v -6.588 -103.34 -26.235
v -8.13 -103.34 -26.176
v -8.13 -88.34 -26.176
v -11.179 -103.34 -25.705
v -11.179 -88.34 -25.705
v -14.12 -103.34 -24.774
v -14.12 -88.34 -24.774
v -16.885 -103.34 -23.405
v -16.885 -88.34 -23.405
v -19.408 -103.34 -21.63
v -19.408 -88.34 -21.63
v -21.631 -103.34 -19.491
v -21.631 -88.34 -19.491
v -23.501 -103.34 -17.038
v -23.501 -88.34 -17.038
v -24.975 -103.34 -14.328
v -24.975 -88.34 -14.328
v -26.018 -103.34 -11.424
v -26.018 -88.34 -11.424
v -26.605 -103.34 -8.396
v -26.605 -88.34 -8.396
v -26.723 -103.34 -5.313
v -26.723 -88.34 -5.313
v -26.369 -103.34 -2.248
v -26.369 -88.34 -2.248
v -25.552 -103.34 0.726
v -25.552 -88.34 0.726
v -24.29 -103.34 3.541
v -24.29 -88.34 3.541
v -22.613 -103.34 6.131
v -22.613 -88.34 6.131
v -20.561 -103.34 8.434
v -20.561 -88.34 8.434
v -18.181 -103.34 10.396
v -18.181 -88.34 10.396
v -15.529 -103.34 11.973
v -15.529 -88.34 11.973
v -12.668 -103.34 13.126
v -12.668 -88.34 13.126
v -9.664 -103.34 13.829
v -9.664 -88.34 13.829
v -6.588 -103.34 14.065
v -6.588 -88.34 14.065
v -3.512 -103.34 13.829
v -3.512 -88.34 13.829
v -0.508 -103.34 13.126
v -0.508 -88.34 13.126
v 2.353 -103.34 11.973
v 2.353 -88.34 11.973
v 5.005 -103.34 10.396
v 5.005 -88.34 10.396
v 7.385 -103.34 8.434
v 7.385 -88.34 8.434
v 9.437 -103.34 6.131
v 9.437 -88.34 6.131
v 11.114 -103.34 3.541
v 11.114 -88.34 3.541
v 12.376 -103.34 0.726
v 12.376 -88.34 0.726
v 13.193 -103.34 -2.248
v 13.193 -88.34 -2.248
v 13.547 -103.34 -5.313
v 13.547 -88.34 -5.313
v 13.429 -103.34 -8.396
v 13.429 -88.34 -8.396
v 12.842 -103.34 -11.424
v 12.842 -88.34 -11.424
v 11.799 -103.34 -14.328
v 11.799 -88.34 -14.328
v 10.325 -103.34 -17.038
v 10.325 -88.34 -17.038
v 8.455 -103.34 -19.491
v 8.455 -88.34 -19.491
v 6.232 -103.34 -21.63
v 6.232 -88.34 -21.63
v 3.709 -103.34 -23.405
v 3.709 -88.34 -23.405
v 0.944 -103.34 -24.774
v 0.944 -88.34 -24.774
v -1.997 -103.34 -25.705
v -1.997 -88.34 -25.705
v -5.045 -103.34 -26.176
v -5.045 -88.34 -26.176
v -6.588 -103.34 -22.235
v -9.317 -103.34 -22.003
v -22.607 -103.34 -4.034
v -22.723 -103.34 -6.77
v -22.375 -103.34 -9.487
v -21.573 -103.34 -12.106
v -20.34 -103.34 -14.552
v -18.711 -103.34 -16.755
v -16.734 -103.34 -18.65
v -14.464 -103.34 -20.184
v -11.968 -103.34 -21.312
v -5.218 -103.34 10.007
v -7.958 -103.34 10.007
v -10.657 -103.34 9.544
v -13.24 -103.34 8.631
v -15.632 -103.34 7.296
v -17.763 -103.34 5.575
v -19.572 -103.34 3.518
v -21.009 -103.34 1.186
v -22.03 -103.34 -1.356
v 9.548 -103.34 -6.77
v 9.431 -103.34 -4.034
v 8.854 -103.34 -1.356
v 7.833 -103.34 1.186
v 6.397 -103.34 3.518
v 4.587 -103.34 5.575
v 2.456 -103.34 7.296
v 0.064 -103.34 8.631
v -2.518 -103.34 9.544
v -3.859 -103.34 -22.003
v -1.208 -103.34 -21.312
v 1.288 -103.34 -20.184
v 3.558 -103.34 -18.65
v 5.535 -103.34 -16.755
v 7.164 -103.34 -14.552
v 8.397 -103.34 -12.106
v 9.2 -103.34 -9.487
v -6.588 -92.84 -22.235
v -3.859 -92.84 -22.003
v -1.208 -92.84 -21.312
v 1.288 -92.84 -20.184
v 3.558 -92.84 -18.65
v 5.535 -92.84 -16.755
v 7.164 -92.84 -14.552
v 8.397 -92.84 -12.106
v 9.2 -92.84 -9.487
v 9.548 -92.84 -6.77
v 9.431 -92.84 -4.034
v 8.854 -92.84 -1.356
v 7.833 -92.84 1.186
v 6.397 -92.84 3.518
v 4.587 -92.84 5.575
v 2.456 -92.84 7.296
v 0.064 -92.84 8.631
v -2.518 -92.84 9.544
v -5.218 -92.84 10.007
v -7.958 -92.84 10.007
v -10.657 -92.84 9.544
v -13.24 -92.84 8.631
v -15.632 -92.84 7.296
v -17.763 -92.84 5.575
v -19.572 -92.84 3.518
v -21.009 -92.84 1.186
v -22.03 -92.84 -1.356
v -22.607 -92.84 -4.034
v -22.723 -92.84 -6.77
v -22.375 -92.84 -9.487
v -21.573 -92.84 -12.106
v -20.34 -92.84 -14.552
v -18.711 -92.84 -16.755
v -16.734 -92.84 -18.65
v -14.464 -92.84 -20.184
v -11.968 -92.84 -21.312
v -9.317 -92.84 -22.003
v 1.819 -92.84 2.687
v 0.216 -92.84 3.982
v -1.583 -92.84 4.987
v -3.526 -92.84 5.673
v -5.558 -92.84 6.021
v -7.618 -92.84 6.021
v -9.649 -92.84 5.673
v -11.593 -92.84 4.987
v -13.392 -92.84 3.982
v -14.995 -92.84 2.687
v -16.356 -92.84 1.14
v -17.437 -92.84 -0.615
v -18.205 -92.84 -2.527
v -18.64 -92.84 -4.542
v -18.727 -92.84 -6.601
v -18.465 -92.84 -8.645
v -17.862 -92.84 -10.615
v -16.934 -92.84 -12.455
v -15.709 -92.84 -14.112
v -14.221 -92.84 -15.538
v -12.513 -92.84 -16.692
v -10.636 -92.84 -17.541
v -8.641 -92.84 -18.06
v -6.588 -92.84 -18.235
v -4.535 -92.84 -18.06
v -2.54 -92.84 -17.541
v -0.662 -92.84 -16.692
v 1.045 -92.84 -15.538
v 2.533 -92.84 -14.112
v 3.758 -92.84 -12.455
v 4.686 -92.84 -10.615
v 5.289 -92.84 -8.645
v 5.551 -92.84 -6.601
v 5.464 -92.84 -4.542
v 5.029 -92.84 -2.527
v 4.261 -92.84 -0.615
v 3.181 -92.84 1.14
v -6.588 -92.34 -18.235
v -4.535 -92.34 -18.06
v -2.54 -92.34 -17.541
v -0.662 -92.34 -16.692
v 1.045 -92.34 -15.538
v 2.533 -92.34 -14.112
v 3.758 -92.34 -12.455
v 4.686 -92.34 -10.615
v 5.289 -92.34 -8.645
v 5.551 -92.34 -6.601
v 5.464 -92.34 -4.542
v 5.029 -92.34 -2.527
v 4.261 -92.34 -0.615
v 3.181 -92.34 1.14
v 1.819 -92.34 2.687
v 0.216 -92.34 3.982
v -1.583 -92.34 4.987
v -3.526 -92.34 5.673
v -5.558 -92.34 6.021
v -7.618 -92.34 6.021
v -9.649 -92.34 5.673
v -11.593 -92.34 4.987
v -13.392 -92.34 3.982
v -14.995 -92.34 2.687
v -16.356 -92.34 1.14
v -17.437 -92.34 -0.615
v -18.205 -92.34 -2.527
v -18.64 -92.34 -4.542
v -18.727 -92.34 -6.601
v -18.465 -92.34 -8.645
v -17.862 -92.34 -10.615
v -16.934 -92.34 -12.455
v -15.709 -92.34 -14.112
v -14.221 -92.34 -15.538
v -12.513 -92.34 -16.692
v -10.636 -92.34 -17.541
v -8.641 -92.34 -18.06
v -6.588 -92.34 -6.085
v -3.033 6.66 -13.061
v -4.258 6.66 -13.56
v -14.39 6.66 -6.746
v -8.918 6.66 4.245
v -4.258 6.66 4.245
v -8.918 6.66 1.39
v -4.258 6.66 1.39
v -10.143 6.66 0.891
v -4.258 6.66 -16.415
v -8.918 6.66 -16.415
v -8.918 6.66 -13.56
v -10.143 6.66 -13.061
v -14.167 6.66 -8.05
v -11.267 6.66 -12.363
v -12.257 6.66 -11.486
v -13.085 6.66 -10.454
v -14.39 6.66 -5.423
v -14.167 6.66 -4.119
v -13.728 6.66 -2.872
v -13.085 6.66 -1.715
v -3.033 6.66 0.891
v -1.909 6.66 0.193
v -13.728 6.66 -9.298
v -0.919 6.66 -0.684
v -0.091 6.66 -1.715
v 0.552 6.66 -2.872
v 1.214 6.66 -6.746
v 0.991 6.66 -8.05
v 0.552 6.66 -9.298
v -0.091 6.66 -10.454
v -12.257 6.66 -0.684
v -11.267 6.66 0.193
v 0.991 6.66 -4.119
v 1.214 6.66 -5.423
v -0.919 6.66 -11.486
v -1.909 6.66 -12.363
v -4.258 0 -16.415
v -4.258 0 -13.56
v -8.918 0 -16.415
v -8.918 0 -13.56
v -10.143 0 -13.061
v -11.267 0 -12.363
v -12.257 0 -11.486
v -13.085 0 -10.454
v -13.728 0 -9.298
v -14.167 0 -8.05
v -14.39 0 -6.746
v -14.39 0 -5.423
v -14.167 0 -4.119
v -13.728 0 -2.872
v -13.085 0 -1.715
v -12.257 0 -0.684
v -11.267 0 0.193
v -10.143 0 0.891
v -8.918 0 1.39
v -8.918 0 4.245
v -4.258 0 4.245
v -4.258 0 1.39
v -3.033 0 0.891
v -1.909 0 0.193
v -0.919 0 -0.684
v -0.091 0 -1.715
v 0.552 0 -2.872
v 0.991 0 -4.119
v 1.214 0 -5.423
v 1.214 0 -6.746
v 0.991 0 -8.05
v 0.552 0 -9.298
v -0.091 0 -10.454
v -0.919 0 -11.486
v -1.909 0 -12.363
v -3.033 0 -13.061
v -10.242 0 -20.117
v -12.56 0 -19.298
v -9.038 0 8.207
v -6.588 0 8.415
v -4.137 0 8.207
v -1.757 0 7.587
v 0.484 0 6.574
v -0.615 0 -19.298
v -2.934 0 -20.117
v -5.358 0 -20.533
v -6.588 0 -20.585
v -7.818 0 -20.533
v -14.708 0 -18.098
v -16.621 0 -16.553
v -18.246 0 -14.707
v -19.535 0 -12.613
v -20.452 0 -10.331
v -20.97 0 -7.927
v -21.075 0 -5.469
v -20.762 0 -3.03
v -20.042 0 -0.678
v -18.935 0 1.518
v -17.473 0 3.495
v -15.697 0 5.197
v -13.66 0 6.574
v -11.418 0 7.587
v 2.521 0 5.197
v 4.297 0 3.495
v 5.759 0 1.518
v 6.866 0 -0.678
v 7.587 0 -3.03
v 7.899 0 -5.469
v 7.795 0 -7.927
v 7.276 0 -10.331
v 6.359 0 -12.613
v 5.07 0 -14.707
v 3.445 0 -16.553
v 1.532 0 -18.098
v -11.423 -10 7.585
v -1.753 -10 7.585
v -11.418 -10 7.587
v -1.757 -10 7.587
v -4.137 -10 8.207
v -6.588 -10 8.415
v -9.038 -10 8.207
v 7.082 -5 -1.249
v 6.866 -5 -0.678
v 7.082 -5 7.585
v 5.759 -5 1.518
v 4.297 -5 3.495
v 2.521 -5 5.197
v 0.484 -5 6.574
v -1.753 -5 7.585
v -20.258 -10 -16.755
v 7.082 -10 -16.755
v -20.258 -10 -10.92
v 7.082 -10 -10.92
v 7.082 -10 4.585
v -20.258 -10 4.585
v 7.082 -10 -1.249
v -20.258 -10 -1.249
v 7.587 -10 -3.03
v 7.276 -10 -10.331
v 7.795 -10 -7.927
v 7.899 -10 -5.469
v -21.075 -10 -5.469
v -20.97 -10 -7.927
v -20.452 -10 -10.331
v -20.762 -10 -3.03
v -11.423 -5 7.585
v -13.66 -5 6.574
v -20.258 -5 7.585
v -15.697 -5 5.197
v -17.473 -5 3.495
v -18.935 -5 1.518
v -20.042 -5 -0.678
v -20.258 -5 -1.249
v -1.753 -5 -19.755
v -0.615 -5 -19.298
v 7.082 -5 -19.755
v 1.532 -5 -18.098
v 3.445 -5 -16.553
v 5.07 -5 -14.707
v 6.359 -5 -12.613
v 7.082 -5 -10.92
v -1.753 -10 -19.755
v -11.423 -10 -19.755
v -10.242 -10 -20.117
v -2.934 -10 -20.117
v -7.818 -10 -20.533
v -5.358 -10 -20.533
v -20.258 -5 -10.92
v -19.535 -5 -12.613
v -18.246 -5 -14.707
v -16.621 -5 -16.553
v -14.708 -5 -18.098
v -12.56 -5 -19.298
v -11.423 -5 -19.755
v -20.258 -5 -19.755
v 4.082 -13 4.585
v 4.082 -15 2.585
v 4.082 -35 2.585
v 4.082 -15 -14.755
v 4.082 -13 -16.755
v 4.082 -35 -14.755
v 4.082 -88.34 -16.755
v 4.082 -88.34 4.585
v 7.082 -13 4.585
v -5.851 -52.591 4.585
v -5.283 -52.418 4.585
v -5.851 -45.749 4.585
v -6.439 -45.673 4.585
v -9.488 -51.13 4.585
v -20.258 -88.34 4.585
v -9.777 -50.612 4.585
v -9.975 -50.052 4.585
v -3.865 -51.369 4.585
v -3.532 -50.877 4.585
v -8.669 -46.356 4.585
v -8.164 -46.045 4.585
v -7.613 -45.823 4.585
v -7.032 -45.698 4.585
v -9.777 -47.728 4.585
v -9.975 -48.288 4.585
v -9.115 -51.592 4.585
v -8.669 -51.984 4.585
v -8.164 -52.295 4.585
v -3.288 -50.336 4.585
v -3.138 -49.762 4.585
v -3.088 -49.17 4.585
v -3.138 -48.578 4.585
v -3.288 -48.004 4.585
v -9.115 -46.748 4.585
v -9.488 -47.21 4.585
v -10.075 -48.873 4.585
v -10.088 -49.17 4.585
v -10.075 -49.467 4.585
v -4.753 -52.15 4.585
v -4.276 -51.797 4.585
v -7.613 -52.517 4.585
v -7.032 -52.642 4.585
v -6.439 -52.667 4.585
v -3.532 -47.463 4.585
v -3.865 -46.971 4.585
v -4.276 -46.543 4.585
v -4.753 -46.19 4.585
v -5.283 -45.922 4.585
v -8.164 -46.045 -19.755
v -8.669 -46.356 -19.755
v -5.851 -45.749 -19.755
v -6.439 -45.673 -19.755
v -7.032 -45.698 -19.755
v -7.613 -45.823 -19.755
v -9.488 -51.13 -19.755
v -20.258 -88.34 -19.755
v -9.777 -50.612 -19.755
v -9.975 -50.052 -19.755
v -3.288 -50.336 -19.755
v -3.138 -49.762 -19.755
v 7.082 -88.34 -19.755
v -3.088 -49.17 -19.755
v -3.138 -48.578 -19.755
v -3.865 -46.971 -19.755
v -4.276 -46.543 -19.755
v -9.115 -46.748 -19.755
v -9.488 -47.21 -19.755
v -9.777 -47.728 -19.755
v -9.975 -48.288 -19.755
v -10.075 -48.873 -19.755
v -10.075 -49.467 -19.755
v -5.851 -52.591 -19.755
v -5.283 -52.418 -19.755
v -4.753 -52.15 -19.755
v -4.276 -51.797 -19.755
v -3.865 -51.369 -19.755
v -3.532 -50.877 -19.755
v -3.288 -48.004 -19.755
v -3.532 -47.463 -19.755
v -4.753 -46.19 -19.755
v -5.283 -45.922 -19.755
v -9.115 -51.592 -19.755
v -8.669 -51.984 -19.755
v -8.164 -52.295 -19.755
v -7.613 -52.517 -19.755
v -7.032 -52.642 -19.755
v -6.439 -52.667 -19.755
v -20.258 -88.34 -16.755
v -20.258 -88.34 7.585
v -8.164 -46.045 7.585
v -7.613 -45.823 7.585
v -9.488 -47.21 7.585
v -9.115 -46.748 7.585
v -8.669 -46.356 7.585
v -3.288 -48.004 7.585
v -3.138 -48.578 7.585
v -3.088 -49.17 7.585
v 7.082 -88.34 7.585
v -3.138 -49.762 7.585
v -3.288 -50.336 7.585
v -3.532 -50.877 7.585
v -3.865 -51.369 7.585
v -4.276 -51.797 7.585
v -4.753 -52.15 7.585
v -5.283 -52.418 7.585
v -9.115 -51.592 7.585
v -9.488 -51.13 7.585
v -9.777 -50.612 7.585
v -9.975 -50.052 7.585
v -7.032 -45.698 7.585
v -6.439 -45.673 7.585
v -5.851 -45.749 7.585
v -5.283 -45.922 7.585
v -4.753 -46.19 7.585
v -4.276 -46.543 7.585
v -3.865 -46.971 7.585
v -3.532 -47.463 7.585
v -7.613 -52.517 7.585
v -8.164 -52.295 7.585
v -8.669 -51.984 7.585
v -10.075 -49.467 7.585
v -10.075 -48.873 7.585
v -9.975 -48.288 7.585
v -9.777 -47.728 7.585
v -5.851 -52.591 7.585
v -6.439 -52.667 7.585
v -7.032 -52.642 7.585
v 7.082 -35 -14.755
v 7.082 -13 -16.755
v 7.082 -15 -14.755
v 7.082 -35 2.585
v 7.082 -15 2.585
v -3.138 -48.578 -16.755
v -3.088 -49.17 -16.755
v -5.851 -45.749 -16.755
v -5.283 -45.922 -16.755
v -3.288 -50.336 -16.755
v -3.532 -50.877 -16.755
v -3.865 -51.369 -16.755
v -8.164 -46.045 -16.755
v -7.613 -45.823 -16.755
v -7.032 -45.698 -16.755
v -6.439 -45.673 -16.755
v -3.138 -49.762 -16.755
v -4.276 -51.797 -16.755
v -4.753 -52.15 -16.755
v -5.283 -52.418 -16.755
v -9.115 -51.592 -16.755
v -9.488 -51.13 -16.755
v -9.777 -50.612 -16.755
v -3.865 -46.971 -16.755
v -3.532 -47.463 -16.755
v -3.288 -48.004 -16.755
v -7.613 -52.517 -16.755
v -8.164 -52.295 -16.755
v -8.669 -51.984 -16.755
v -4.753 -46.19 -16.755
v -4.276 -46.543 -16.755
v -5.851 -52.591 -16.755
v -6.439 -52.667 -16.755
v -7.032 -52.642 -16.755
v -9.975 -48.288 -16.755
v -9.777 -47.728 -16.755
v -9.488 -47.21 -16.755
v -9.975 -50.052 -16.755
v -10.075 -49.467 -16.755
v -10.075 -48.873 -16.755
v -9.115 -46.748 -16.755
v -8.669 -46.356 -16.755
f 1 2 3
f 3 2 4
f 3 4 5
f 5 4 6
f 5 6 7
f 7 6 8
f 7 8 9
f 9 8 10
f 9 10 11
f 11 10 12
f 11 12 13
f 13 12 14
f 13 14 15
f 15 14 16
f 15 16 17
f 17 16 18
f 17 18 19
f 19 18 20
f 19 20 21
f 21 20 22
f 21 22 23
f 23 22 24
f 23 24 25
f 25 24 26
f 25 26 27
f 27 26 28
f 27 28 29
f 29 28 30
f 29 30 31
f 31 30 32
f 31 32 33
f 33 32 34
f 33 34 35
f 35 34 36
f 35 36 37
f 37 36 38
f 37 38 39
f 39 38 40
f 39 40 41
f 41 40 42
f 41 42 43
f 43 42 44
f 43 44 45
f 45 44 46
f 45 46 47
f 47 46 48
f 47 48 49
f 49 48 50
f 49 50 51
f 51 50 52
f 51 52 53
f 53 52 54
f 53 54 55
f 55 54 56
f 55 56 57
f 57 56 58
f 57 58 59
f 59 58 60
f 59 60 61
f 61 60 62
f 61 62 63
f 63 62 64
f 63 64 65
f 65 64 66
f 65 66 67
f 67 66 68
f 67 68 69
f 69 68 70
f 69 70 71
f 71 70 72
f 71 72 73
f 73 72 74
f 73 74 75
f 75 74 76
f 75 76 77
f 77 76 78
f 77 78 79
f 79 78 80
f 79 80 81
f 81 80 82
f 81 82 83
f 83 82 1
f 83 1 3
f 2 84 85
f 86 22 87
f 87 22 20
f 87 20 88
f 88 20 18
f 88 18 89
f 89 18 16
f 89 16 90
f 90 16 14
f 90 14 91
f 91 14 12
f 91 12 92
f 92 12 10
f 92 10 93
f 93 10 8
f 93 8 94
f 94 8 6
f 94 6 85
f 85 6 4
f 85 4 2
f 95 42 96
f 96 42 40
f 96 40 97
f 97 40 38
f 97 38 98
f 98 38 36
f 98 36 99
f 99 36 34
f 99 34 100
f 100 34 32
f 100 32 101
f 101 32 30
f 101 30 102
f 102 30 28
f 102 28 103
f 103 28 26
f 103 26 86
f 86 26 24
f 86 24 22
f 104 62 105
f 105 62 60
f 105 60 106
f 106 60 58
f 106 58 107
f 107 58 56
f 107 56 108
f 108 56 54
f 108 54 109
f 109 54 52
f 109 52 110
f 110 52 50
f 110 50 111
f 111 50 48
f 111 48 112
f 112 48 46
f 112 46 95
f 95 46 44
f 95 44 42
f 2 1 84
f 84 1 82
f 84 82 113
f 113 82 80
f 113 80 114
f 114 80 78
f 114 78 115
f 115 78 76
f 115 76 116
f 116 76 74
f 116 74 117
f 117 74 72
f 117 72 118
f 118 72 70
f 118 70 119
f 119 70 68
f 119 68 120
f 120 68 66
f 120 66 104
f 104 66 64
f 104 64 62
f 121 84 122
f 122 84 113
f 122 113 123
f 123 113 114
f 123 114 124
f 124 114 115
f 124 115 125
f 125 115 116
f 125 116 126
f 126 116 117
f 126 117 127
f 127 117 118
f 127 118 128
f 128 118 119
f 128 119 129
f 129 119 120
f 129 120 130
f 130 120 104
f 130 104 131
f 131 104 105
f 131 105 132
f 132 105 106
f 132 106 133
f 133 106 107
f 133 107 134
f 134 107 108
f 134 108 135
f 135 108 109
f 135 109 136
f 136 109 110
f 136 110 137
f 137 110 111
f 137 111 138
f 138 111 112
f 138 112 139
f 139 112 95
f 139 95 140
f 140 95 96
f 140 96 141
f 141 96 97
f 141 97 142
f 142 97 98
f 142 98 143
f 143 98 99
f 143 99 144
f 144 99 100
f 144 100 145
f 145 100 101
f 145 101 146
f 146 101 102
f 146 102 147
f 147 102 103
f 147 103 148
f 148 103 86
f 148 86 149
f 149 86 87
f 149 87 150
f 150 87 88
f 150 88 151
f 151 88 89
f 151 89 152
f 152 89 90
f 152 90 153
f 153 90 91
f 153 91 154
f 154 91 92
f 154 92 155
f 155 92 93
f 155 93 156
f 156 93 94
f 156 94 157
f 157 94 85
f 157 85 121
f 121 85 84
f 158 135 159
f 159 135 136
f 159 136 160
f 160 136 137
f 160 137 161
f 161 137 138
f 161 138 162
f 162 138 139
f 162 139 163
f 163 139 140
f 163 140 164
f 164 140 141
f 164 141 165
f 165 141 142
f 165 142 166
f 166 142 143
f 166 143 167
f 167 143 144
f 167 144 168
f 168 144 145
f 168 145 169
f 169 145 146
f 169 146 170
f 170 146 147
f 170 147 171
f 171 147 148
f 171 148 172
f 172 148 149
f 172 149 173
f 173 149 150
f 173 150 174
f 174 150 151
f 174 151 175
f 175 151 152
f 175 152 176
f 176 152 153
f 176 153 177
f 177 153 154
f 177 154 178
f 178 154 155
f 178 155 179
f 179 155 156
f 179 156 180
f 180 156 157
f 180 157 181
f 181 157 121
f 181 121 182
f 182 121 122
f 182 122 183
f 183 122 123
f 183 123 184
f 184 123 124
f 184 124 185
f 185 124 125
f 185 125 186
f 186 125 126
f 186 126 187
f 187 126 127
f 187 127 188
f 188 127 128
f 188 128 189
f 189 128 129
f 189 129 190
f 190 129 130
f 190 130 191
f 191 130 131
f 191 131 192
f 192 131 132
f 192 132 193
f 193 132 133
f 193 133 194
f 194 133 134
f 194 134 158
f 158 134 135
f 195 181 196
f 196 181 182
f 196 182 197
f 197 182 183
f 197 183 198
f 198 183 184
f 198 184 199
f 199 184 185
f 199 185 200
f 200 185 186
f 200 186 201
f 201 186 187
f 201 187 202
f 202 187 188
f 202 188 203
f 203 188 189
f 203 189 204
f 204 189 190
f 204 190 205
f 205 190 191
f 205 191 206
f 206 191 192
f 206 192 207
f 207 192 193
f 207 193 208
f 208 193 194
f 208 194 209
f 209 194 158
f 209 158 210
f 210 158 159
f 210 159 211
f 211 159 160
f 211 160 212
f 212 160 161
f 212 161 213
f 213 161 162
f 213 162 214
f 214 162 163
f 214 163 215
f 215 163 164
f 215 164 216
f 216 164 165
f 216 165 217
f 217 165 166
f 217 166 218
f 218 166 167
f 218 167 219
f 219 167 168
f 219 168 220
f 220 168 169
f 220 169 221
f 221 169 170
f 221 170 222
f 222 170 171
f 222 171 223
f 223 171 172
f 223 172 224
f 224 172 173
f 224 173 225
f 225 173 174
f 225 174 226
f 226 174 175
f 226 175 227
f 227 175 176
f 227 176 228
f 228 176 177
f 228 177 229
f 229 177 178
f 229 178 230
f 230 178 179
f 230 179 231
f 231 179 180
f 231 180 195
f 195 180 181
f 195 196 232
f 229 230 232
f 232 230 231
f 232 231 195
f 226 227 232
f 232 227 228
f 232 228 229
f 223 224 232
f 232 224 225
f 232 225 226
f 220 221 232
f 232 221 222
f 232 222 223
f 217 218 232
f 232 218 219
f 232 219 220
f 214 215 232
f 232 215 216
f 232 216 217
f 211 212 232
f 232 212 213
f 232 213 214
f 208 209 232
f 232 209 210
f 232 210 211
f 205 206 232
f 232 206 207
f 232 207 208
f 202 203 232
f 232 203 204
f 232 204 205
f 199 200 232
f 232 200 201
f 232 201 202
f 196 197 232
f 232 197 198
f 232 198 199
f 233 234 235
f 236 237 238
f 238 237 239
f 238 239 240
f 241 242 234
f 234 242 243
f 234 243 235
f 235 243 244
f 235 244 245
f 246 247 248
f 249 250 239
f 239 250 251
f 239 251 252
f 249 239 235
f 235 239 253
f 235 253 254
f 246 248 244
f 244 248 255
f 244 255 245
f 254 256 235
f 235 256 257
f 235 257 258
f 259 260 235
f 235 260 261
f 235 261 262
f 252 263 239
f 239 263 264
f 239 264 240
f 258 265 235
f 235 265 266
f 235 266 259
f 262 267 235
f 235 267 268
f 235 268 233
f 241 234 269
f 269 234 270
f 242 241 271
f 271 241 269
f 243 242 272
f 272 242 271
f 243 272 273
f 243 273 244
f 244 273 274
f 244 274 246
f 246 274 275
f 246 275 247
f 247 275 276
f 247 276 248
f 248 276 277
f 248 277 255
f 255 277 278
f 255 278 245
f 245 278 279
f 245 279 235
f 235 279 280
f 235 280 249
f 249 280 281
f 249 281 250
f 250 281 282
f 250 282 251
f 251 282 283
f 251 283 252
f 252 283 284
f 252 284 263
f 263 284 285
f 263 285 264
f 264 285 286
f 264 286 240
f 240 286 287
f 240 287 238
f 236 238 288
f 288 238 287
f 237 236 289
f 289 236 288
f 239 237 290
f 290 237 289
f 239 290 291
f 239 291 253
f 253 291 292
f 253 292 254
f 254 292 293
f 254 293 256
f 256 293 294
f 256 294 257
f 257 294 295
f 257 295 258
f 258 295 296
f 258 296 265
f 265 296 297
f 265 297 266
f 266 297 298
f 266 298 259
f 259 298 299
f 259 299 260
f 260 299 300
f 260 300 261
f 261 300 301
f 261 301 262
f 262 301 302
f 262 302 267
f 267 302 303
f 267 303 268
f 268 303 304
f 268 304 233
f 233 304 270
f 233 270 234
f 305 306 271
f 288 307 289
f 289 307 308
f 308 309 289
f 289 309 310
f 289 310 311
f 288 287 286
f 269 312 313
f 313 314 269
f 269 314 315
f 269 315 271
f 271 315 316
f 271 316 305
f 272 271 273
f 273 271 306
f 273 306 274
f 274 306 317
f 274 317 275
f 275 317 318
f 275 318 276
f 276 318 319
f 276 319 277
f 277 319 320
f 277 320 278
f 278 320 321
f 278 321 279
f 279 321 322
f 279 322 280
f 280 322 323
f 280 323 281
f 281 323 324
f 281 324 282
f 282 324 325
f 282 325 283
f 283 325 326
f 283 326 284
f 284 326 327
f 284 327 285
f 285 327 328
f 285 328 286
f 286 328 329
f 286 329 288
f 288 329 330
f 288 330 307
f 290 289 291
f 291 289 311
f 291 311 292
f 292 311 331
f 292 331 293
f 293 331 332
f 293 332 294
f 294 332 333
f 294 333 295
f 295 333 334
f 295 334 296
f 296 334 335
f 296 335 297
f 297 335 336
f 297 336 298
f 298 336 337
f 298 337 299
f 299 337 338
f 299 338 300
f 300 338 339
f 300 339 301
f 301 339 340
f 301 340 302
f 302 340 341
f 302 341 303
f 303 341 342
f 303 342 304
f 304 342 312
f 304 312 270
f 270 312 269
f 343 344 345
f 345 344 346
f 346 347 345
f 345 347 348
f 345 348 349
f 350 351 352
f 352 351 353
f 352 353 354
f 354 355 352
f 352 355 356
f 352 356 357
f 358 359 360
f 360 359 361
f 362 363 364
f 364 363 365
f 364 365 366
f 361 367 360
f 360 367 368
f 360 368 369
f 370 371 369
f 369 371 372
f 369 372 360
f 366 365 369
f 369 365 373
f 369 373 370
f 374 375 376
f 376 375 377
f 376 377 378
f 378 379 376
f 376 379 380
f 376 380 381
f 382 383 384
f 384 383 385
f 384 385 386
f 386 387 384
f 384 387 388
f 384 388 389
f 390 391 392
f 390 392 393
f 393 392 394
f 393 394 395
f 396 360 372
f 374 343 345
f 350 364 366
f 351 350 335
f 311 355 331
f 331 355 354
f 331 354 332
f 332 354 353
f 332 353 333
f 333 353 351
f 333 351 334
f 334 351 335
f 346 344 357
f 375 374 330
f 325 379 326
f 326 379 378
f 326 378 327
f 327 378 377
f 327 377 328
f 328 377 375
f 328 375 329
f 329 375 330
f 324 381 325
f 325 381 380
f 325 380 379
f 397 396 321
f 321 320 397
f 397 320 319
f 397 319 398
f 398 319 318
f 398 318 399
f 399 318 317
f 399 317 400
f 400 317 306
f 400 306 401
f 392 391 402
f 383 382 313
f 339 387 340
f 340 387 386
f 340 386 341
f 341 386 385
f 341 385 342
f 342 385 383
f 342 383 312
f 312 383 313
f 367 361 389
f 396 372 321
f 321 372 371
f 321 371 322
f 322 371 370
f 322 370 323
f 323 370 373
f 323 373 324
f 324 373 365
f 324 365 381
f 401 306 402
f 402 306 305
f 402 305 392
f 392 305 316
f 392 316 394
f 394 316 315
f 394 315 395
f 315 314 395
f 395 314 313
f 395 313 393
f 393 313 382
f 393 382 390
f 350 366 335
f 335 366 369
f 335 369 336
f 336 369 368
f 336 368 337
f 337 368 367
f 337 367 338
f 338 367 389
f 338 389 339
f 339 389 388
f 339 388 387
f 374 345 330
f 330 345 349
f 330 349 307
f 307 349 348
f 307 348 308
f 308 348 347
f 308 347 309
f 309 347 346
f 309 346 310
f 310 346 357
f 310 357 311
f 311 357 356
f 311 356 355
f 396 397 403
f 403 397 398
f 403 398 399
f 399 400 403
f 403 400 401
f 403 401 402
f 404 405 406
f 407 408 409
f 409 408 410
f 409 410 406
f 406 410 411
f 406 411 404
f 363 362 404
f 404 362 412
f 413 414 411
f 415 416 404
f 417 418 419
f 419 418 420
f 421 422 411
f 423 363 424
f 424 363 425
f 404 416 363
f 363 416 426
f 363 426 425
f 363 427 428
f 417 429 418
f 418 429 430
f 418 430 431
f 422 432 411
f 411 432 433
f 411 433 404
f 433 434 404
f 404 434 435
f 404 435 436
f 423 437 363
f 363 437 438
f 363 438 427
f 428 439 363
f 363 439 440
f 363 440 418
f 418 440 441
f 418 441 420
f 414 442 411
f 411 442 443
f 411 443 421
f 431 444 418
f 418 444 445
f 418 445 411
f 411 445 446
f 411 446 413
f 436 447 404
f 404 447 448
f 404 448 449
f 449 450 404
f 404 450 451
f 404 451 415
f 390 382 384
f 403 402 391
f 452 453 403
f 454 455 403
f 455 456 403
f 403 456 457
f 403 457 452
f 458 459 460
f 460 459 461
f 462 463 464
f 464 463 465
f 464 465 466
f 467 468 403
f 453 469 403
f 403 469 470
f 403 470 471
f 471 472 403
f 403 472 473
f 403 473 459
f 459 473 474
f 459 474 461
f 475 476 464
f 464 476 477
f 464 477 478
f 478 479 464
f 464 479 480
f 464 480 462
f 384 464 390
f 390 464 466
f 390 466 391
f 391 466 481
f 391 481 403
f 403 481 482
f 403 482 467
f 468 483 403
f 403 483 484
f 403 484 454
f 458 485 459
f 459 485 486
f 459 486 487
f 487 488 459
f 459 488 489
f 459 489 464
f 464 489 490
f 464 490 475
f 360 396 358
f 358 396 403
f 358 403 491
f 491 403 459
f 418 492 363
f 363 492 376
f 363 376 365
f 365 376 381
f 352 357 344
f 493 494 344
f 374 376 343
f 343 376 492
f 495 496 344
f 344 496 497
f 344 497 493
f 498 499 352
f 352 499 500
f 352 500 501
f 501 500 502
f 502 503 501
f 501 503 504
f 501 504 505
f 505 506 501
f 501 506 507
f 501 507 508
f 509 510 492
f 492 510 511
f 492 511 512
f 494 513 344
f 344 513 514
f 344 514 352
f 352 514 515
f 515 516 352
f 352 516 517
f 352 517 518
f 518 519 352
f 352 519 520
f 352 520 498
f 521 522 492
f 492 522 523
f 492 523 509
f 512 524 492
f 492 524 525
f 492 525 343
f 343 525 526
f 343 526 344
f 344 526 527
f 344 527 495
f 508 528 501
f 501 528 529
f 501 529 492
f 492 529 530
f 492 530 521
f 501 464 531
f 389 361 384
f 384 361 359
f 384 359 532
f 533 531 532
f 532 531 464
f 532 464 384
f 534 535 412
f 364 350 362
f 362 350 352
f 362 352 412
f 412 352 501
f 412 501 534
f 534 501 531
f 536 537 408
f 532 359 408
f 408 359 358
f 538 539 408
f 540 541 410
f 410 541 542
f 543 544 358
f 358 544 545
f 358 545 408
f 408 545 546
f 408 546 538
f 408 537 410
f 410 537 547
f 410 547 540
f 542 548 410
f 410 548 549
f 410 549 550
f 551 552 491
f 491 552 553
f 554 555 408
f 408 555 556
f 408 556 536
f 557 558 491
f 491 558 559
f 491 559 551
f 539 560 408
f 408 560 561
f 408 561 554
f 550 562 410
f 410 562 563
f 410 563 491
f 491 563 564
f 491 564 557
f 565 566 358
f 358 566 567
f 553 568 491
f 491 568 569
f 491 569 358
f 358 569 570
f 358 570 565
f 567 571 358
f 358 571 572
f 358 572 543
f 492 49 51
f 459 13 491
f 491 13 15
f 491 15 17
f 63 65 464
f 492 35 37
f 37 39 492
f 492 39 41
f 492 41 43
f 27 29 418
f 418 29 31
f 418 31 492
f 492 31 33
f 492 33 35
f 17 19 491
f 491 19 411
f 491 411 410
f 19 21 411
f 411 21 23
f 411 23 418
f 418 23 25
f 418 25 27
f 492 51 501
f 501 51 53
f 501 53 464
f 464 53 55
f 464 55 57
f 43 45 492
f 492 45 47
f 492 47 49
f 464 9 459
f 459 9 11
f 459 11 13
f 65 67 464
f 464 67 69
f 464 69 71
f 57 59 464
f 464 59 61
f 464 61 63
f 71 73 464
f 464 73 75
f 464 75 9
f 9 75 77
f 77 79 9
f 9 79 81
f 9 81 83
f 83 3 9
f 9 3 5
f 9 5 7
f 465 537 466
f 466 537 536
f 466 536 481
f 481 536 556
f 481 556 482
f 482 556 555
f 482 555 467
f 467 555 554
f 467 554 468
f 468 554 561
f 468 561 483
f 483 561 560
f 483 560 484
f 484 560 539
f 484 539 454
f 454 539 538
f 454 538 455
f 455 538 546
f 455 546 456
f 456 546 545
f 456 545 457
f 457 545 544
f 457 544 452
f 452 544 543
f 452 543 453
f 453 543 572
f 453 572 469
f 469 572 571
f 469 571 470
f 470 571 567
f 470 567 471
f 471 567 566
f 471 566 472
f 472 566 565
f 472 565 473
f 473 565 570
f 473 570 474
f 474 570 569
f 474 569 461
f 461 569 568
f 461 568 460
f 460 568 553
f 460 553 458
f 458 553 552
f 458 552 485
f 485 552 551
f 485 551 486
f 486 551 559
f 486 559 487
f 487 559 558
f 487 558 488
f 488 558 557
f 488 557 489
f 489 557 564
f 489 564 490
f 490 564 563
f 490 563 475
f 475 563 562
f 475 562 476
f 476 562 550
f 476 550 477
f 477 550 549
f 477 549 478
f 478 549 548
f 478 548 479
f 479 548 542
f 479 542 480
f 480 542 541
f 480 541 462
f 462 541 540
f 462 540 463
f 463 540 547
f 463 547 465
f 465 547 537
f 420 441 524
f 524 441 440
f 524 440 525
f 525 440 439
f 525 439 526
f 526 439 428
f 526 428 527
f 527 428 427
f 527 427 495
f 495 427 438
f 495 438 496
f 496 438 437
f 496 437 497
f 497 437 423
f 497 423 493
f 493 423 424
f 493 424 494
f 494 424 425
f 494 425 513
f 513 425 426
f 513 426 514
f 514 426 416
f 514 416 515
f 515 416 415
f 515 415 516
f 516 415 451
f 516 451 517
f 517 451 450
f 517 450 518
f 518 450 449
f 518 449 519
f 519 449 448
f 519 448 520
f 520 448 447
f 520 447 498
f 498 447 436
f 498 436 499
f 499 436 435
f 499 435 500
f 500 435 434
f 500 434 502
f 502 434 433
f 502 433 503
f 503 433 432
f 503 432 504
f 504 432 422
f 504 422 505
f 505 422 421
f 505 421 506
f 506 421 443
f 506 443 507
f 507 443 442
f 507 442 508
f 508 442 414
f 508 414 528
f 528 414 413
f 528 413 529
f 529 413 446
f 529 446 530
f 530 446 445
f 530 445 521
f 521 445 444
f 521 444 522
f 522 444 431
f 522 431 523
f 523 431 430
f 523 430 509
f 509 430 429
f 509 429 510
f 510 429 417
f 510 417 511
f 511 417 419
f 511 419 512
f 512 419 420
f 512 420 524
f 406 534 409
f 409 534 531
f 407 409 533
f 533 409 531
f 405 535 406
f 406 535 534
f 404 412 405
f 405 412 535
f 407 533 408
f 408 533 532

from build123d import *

# Parameters (mm, degrees)
BOSS_EXTRUDE1_DEPTH = 6.66
BOSS_EXTRUDE2_START = 10
SKETCH3_R           = 14.5
BOSS_EXTRUDE2_DEPTH = 10
BOSS_EXTRUDE3_START = -5
SKETCH5_W           = 27.34
SKETCH5_H           = 27.34
SKETCH5_W_2         = 21.34
SKETCH5_H_2         = 21.34
BOSS_EXTRUDE3_DEPTH = 83.34
SKETCH6_W           = 21.34
SKETCH6_H           = 21.34
BOSS_EXTRUDE4_DEPTH = 5
SKETCH8_W           = 21.34
SKETCH8_H           = 78.34
CUT_EXTRUDE1_DEPTH  = 5
SKETCH9_W           = 21.34
SKETCH9_H           = 3
CUT_EXTRUDE2_DEPTH  = 5
SKETCH10_W          = 27.34
SKETCH10_H          = 27.34
BOSS_EXTRUDE5_DEPTH = 3
SKETCH11_R          = 20.15
BOSS_EXTRUDE6_DEPTH = 12
SKETCH12_R          = 16.15
CUT_EXTRUDE3_DEPTH  = 10.5
SKETCH13_R          = 12.15
CUT_EXTRUDE4_DEPTH  = 0.5
BOSS_EXTRUDE7_START = 3
BOSS_EXTRUDE7_DEPTH = 3
SKETCH19_R          = 3.5
CUT_EXTRUDE5_DEPTH  = 112.972606961
SKETCH20_W          = 17.34
SKETCH20_H          = 20
CUT_EXTRUDE6_DEPTH  = 111.983314599
CUT_EXTRUDE7_DEPTH  = 111.983314599


with BuildPart() as part:
    # Sketch2 → Boss-Extrude1 (new body)
    with BuildSketch(Plane(origin=(0, 0, 0), x_dir=(1, 0, 0), z_dir=(0, 1, 0))):
        with BuildLine():
            Line((-4.257926427, 13.560157214), (-4.257926427, -1.390428058))
            ThreePointArc((-4.257926427, -1.390428058), (-0.281073012, 1.444552088), (1.242073573, 6.084864578))
            ThreePointArc((1.242073573, 6.084864578), (-0.281073012, 10.725177067), (-4.257926427, 13.560157214))
        make_face()
        with BuildLine():
            Line((-8.917926427, 13.560157214), (-8.917926427, -1.390428058))
            ThreePointArc((-8.917926427, -1.390428058), (-6.587926427, -1.745135422), (-4.257926427, -1.390428058))
            Line((-4.257926427, -1.390428058), (-4.257926427, 13.560157214))
            ThreePointArc((-4.257926427, 13.560157214), (-6.587926427, 13.914864578), (-8.917926427, 13.560157214))
        make_face()
        with BuildLine():
            Line((-8.917926427, -1.390428058), (-8.917926427, -4.245135422))
            Line((-8.917926427, -4.245135422), (-4.257926427, -4.245135422))
            Line((-4.257926427, -4.245135422), (-4.257926427, -1.390428058))
            ThreePointArc((-4.257926427, -1.390428058), (-6.587926427, -1.745135422), (-8.917926427, -1.390428058))
        make_face()
        with BuildLine():
            ThreePointArc((-8.917926427, 13.560157214), (-14.417926427, 6.084864578), (-8.917926427, -1.390428058))
            Line((-8.917926427, -1.390428058), (-8.917926427, 13.560157214))
        make_face()
        with BuildLine():
            Line((-8.917926427, 16.414864578), (-8.917926427, 13.560157214))
            ThreePointArc((-8.917926427, 13.560157214), (-6.587926427, 13.914864578), (-4.257926427, 13.560157214))
            Line((-4.257926427, 13.560157214), (-4.257926427, 16.414864578))
            Line((-4.257926427, 16.414864578), (-8.917926427, 16.414864578))
        make_face()
    extrude(amount=BOSS_EXTRUDE1_DEPTH)

    # Sketch3 → Boss-Extrude2 (add)
    # profile 1 of 3: a face of its own
    with BuildSketch(Plane.XZ.offset(BOSS_EXTRUDE2_START)):
        with Locations(Location((-6.587926427, -6.084864578, 0), (0, 0, 270))):
            Circle(SKETCH3_R)
        with BuildLine():
            ThreePointArc((-4.257926427, -13.560157214), (1.242073573, -6.084864578), (-4.257926427, 1.390428058))
            Line((-4.257926427, 1.390428058), (-4.257926427, 4.245135422))
            Line((-4.257926427, 4.245135422), (-8.917926427, 4.245135422))
            Line((-8.917926427, 4.245135422), (-8.917926427, 1.390428058))
            ThreePointArc((-8.917926427, 1.390428058), (-14.417926427, -6.084864578), (-8.917926427, -13.560157214))
            Line((-8.917926427, -13.560157214), (-8.917926427, -16.414864578))
            Line((-8.917926427, -16.414864578), (-4.257926427, -16.414864578))
            Line((-4.257926427, -16.414864578), (-4.257926427, -13.560157214))
        make_face(mode=Mode.SUBTRACT)
    # profile 2 of 3: a face of its own
    with BuildSketch(Plane.XZ.offset(BOSS_EXTRUDE2_START)):
        with BuildLine():
            Line((-4.257926427, 4.245135422), (-6.587926427, 4.245135422))
            Line((-6.587926427, 4.245135422), (-6.587926427, -16.414864578))
            Line((-6.587926427, -16.414864578), (-4.257926427, -16.414864578))
            Line((-4.257926427, -16.414864578), (-4.257926427, -13.560157214))
            ThreePointArc((-4.257926427, -13.560157214), (1.242073573, -6.084864578), (-4.257926427, 1.390428058))
            Line((-4.257926427, 1.390428058), (-4.257926427, 4.245135422))
        make_face()
    # profile 3 of 3: a face of its own
    with BuildSketch(Plane.XZ.offset(BOSS_EXTRUDE2_START)):
        with BuildLine():
            Line((-6.587926427, -16.414864578), (-6.587926427, 4.245135422))
            Line((-6.587926427, 4.245135422), (-8.917926427, 4.245135422))
            Line((-8.917926427, 4.245135422), (-8.917926427, 1.390428058))
            ThreePointArc((-8.917926427, 1.390428058), (-14.417926427, -6.084864578), (-8.917926427, -13.560157214))
            Line((-8.917926427, -13.560157214), (-8.917926427, -16.414864578))
            Line((-8.917926427, -16.414864578), (-6.587926427, -16.414864578))
        make_face()
    extrude(amount=-BOSS_EXTRUDE2_DEPTH)

    # Sketch5 → Boss-Extrude3 (add)
    with BuildSketch(Plane.XZ.offset(10).offset(BOSS_EXTRUDE3_START)):
        with Locations((-6.587926427, -6.084864578)):
            Rectangle(SKETCH5_W, SKETCH5_H)
        with Locations((-6.587926427, -6.084864578)):
            Rectangle(SKETCH5_W_2, SKETCH5_H_2, mode=Mode.SUBTRACT)
    extrude(amount=BOSS_EXTRUDE3_DEPTH)

    # Sketch6 → Boss-Extrude4 (add)
    with BuildSketch(Plane.XZ.offset(10)):
        with Locations((-6.587926427, -6.084864578)):
            Rectangle(SKETCH6_W, SKETCH6_H)
    extrude(amount=-BOSS_EXTRUDE4_DEPTH)

    # Sketch8 → Cut-Extrude1 (cut)
    with BuildSketch(Plane.ZY.offset(20.257926427)):
        with Locations((-6.084864578, -49.17)):
            Rectangle(SKETCH8_W, SKETCH8_H)
    extrude(amount=-CUT_EXTRUDE1_DEPTH, mode=Mode.SUBTRACT)

    # Sketch9 → Cut-Extrude2 (cut)
    with BuildSketch(Plane.ZY.offset(-4.082073573)):
        with Locations((-6.084864578, -11.5)):
            Rectangle(SKETCH9_W, SKETCH9_H)
    extrude(amount=-CUT_EXTRUDE2_DEPTH, mode=Mode.SUBTRACT)

    # Sketch10 → Boss-Extrude5 (add)
    with BuildSketch(Plane.XZ.offset(88.34)):
        with Locations((-6.587926427, -6.084864578)):
            Rectangle(SKETCH10_W, SKETCH10_H)
    extrude(amount=BOSS_EXTRUDE5_DEPTH)

    # Sketch11 → Boss-Extrude6 (add)
    with BuildSketch(Plane(origin=(0, -91.34, 0), x_dir=(-1, 0, 0), z_dir=(0, -1, 0))):
        with Locations(Location((6.587926427, 6.084864578, 0), (0, 0, 90))):
            Circle(SKETCH11_R)
    extrude(amount=BOSS_EXTRUDE6_DEPTH)

    # Sketch12 → Cut-Extrude3 (cut)
    with BuildSketch(Plane.XZ.offset(103.34)):
        with Locations(Location((-6.587926427, -6.084864578, 0), (0, 0, 270))):
            Circle(SKETCH12_R)
    extrude(amount=-CUT_EXTRUDE3_DEPTH, mode=Mode.SUBTRACT)

    # Sketch13 → Cut-Extrude4 (cut)
    with BuildSketch(Plane.XZ.offset(92.84)):
        with Locations(Location((-6.587926427, -6.084864578, 0), (0, 0, 270))):
            Circle(SKETCH13_R)
    extrude(amount=-CUT_EXTRUDE4_DEPTH, mode=Mode.SUBTRACT)

    # Sketch14 → Boss-Extrude7 (add)
    with BuildSketch(Plane(origin=(0, -91.34, 0), x_dir=(1, 0, 0), z_dir=(0, 1, 0)).offset(BOSS_EXTRUDE7_START)):
        with BuildLine():
            Line((-6.587926427, -7.585135422), (-6.587926427, -14.065135422))
            ThreePointArc((-6.587926427, -14.065135422), (7.660275213, -8.163337063), (13.562073573, 6.084864578))
            ThreePointArc((13.562073573, 6.084864578), (7.660275213, 20.333066219), (-6.587926427, 26.234864578))
            Line((-6.587926427, 26.234864578), (-6.587926427, 19.754864578))
            Line((-6.587926427, 19.754864578), (7.082073573, 19.754864578))
            Line((7.082073573, 19.754864578), (7.082073573, -7.585135422))
            Line((7.082073573, -7.585135422), (-6.587926427, -7.585135422))
        make_face()
        with BuildLine():
            ThreePointArc((-6.587926427, 26.234864578), (-26.737926427, 6.084864578), (-6.587926427, -14.065135422))
            Line((-6.587926427, -14.065135422), (-6.587926427, -7.585135422))
            Line((-6.587926427, -7.585135422), (-20.257926427, -7.585135422))
            Line((-20.257926427, -7.585135422), (-20.257926427, 19.754864578))
            Line((-20.257926427, 19.754864578), (-6.587926427, 19.754864578))
            Line((-6.587926427, 19.754864578), (-6.587926427, 26.234864578))
        make_face()
    extrude(amount=-BOSS_EXTRUDE7_DEPTH)

    # Sketch19 → Cut-Extrude5 (cut, through all)
    with BuildSketch(Plane.XY.offset(7.585135422)):
        with Locations((-6.587926427, -49.17)):
            Circle(SKETCH19_R)
    extrude(amount=-CUT_EXTRUDE5_DEPTH, mode=Mode.SUBTRACT)

    # Sketch20 → Cut-Extrude6 (cut, through all)
    with BuildSketch(Plane.ZY.offset(-4.082073573)):
        with Locations((-6.084864578, -25)):
            Rectangle(SKETCH20_W, SKETCH20_H)
    extrude(amount=-CUT_EXTRUDE6_DEPTH, mode=Mode.SUBTRACT)

    # Sketch21 → Cut-Extrude7 (cut, through all)
    with BuildSketch(Plane.ZY.offset(-4.082073573)):
        Polygon((-14.754864578, -15), (-16.754864578, -13), (4.585135422, -13), (2.585135422, -15), align=None)
    extrude(amount=-CUT_EXTRUDE7_DEPTH, mode=Mode.SUBTRACT)


solid = part.part
